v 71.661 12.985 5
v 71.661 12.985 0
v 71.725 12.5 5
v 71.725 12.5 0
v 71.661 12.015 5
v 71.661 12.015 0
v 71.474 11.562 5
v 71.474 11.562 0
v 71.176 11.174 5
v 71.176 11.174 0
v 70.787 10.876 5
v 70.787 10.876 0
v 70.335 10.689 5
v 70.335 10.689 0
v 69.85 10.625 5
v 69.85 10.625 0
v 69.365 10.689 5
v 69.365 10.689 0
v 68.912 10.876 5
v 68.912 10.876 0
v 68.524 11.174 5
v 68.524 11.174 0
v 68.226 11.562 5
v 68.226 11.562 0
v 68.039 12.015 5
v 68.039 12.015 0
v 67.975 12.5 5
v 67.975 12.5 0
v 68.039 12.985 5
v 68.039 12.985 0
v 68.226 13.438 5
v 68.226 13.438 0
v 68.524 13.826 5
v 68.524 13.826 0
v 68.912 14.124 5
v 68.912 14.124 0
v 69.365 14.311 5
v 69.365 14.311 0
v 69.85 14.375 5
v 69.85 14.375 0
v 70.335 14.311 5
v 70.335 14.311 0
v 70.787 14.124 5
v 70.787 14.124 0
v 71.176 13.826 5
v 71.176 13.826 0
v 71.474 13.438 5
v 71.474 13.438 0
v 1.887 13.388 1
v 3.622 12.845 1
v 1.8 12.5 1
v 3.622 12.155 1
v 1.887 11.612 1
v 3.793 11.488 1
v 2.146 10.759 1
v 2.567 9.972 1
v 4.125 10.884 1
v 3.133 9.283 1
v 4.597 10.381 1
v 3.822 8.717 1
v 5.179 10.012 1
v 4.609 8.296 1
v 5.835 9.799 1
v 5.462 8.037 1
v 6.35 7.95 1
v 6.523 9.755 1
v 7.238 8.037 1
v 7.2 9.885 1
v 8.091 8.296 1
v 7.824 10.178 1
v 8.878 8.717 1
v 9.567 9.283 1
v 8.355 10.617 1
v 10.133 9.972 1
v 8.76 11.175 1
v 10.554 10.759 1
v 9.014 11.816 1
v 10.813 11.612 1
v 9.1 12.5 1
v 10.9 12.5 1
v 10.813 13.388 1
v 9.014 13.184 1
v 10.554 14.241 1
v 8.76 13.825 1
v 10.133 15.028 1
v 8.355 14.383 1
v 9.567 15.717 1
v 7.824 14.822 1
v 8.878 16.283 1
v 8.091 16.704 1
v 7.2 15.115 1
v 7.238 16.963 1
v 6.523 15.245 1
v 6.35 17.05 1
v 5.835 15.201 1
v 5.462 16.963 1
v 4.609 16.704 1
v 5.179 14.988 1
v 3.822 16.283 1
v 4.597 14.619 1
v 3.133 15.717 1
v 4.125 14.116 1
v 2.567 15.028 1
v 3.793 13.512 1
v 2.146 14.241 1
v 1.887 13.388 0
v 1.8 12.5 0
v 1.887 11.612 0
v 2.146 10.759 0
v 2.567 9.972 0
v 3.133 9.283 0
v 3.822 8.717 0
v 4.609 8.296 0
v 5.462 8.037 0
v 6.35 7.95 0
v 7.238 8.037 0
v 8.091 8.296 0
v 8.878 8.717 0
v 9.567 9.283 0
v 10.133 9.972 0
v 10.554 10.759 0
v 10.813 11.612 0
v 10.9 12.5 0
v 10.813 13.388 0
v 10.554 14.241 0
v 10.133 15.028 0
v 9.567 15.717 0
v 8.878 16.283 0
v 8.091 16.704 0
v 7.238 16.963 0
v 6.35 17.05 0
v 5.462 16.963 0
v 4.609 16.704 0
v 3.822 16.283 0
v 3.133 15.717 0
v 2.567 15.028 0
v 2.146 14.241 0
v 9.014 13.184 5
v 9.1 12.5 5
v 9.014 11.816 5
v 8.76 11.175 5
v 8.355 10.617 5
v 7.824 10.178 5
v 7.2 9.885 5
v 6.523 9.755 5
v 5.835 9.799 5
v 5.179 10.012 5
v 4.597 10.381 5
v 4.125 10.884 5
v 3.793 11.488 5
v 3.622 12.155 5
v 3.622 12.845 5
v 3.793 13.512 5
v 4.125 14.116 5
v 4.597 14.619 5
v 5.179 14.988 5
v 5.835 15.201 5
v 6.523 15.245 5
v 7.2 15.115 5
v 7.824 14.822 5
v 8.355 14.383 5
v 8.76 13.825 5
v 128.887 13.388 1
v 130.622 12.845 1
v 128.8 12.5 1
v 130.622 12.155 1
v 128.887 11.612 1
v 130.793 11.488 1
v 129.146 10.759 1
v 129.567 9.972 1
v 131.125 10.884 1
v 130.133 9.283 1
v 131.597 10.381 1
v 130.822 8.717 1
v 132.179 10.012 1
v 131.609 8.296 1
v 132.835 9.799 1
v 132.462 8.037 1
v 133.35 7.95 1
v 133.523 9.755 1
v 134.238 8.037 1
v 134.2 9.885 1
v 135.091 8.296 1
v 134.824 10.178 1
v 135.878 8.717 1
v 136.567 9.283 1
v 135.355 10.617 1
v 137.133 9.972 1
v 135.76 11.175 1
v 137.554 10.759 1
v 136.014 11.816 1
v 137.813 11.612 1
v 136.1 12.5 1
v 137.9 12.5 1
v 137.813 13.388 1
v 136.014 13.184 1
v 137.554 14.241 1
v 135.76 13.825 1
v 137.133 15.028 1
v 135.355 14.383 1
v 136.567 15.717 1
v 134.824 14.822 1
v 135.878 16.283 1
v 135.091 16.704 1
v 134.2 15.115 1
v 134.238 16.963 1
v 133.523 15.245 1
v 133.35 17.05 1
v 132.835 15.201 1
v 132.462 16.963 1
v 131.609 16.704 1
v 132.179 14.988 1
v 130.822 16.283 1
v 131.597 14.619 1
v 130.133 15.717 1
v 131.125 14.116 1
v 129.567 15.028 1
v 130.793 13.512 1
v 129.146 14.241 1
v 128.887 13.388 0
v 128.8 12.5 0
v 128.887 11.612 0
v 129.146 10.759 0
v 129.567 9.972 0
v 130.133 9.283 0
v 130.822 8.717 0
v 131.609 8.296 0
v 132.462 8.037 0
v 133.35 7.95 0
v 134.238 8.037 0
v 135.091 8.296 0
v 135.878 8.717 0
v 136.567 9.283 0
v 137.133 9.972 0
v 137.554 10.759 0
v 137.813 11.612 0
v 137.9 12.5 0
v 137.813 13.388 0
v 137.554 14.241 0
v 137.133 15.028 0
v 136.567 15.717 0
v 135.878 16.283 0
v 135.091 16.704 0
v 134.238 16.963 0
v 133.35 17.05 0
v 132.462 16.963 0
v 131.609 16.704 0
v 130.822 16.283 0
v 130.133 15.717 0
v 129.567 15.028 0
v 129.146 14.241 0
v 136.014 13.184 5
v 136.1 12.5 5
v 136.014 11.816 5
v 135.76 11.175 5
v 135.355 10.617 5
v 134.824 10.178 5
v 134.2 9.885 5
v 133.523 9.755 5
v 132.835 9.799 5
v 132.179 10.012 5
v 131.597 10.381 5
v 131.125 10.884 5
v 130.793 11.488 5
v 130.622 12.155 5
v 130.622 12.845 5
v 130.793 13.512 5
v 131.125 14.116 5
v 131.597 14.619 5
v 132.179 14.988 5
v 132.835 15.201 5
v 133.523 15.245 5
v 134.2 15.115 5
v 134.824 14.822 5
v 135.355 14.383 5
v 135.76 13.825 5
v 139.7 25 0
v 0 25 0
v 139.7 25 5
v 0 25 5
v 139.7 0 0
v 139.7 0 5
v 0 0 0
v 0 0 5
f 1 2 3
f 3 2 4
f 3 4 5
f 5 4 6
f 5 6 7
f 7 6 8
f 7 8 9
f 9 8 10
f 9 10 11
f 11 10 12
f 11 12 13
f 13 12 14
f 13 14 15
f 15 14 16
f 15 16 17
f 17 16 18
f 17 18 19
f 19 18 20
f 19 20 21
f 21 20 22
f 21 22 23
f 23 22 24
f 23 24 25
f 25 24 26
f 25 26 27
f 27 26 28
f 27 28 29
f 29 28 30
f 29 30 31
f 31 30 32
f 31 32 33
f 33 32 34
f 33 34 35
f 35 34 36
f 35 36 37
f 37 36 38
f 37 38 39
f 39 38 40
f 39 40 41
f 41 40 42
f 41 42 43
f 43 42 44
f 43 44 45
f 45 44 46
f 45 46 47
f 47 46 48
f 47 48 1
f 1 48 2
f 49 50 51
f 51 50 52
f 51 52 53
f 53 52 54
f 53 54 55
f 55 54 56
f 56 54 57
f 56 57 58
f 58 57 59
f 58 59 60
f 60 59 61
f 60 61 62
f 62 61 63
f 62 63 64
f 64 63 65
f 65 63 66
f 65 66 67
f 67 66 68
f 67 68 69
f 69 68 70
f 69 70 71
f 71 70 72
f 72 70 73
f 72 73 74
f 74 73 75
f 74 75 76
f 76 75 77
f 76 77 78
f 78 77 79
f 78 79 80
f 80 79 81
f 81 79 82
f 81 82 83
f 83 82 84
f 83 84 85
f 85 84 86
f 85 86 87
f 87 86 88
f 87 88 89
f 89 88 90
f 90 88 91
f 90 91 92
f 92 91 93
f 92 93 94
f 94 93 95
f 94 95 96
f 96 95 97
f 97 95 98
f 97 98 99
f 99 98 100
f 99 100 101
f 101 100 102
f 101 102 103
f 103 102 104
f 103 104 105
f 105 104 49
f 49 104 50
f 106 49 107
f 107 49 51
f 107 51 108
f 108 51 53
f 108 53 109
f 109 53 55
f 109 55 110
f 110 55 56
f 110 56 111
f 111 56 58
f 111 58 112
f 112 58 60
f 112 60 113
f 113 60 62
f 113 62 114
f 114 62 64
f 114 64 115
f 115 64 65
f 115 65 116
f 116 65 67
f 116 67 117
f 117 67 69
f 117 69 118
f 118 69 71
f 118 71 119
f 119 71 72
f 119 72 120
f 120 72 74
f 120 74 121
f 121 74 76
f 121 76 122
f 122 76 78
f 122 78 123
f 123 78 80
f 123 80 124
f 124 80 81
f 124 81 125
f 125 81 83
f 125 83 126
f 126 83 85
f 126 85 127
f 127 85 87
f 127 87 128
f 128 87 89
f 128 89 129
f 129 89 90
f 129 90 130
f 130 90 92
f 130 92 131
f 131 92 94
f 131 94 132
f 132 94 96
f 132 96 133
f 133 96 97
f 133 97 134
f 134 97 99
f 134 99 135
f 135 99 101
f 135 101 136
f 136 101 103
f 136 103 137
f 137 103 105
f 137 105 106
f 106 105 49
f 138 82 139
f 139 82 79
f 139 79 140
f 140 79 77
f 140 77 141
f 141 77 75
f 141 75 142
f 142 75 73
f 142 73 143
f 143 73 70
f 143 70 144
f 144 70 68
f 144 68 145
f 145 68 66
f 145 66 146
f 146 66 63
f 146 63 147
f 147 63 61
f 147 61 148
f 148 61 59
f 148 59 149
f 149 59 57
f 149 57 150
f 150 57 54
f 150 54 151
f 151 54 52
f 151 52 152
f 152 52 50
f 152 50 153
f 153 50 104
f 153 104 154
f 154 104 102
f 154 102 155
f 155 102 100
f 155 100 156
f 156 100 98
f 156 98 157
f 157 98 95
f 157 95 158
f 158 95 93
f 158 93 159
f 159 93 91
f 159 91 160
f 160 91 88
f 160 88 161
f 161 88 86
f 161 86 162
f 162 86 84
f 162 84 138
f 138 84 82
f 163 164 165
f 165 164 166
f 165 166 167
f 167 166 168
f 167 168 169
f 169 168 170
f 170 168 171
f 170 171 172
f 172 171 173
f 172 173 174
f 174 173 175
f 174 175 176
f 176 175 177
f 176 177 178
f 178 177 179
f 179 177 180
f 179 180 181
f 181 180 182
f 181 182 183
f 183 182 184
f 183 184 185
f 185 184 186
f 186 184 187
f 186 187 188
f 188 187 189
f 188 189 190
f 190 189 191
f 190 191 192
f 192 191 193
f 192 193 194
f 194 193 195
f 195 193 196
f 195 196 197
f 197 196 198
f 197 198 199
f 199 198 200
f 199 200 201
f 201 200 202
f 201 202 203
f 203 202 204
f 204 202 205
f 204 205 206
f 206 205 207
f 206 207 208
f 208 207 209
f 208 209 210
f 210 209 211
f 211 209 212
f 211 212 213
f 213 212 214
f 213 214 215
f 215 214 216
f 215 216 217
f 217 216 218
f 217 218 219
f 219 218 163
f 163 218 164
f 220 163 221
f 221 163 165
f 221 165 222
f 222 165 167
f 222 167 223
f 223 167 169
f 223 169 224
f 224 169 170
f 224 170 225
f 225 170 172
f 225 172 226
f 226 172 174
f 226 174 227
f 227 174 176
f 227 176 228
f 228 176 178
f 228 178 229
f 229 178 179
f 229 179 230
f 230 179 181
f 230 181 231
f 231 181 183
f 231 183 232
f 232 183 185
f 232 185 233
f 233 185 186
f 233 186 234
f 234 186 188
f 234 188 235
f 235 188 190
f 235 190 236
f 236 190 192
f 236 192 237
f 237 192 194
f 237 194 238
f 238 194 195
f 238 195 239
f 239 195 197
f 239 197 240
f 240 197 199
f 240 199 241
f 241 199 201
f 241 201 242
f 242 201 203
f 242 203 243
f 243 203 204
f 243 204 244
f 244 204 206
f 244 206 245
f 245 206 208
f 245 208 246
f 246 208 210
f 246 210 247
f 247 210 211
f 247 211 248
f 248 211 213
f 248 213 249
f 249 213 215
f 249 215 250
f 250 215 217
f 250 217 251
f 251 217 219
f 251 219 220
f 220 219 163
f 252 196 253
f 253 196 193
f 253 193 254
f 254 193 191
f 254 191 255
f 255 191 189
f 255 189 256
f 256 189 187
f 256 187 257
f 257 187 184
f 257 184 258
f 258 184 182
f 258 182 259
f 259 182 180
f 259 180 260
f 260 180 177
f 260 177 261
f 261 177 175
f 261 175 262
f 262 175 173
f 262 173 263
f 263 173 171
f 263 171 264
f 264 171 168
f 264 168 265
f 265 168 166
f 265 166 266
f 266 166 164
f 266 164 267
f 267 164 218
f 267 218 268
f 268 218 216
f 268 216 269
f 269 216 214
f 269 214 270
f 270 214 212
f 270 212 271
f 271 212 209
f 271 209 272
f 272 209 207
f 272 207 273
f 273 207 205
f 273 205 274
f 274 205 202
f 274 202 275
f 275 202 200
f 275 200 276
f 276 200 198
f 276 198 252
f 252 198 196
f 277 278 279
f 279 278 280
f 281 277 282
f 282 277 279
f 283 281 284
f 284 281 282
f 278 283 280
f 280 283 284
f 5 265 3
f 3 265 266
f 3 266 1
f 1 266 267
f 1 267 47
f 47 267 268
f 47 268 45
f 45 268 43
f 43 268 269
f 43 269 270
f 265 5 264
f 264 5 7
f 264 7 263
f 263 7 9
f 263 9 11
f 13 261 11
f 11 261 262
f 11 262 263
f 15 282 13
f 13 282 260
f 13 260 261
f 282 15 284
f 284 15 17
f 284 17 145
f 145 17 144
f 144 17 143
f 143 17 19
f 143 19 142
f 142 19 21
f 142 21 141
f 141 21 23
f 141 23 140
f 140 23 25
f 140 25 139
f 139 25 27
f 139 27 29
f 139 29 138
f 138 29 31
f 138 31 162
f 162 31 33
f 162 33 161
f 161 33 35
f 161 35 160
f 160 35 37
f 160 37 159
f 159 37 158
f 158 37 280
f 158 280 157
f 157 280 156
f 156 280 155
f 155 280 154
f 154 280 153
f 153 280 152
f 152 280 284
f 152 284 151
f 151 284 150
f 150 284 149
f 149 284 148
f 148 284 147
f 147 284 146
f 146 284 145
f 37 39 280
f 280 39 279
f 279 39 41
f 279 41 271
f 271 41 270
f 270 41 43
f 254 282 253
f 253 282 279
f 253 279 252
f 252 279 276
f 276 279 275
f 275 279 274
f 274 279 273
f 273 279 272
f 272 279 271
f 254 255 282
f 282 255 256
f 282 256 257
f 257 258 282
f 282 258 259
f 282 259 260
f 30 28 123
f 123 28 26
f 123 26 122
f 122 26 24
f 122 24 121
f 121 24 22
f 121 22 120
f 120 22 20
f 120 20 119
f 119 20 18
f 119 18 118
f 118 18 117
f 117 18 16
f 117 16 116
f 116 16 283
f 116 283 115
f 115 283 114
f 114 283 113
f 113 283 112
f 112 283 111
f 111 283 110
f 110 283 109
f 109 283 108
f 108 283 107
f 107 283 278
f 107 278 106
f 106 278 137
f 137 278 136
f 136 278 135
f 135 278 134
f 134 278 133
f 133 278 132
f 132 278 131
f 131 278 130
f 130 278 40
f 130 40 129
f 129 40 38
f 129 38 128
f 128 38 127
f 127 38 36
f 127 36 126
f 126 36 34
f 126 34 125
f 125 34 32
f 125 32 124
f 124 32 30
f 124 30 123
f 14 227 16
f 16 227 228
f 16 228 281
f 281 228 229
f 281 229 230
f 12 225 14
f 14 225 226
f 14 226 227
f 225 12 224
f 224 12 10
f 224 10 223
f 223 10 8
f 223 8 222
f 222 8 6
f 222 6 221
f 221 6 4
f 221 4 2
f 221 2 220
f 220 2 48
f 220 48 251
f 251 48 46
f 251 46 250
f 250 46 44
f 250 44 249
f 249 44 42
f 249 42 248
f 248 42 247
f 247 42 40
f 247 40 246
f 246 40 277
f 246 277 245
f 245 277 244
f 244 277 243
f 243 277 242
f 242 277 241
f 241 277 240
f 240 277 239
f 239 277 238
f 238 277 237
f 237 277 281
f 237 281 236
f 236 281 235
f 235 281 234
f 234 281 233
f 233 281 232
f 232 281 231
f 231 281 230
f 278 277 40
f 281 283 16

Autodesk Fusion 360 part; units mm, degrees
sketch "Sketch1" plane through (0, 0, 0) normal (0, 0, 1) x (1, 0, 0)
  line L0 (0, 0) -> (139.7, 0)
  line L1 (139.7, 0) -> (139.7, 25)
  line L2 (139.7, 25) -> (0, 25)
  line L3 (0, 25) -> (0, 0)
  dimension "d1" = 139.7
  dimension "d2" = 25
extrude "Extrude1" add sketch "Sketch1" along normal blind 5
sketch "Sketch2" plane through (0, 0, 0) normal (0, 0, 1) x (1, 0, 0)
  point P0 (6.35, 12.5)
  point P1 (133.35, 12.5)
hole "Hole1" at (6.35, 12.5, 0) at (133.35, 12.5, 0) direction (0, 0, 1) diameter 5.5 depth 13 tip angle 118 counterbore diameter 9.1 counterbore depth 1
sketch "Sketch5" plane through (0, 0, 0) normal (0, 0, -1) x (1, 0, 0)
  circle A0 centre (6.35, -12.5) radius 4.55
  circle A1 centre (133.35, -12.5) radius 4.55
  line L0 (0, 0) -> (0, -25)
  line L1 (0, -25) -> (139.7, -25)
  line L2 (139.7, -25) -> (139.7, 0)
  line L3 (139.7, 0) -> (0, 0)
  point P0 (69.85, -12.5)
hole "Hole4" at (69.85, 12.5, 0) direction (0, 0, 1) diameter 3.75 depth 15 tip angle 118
